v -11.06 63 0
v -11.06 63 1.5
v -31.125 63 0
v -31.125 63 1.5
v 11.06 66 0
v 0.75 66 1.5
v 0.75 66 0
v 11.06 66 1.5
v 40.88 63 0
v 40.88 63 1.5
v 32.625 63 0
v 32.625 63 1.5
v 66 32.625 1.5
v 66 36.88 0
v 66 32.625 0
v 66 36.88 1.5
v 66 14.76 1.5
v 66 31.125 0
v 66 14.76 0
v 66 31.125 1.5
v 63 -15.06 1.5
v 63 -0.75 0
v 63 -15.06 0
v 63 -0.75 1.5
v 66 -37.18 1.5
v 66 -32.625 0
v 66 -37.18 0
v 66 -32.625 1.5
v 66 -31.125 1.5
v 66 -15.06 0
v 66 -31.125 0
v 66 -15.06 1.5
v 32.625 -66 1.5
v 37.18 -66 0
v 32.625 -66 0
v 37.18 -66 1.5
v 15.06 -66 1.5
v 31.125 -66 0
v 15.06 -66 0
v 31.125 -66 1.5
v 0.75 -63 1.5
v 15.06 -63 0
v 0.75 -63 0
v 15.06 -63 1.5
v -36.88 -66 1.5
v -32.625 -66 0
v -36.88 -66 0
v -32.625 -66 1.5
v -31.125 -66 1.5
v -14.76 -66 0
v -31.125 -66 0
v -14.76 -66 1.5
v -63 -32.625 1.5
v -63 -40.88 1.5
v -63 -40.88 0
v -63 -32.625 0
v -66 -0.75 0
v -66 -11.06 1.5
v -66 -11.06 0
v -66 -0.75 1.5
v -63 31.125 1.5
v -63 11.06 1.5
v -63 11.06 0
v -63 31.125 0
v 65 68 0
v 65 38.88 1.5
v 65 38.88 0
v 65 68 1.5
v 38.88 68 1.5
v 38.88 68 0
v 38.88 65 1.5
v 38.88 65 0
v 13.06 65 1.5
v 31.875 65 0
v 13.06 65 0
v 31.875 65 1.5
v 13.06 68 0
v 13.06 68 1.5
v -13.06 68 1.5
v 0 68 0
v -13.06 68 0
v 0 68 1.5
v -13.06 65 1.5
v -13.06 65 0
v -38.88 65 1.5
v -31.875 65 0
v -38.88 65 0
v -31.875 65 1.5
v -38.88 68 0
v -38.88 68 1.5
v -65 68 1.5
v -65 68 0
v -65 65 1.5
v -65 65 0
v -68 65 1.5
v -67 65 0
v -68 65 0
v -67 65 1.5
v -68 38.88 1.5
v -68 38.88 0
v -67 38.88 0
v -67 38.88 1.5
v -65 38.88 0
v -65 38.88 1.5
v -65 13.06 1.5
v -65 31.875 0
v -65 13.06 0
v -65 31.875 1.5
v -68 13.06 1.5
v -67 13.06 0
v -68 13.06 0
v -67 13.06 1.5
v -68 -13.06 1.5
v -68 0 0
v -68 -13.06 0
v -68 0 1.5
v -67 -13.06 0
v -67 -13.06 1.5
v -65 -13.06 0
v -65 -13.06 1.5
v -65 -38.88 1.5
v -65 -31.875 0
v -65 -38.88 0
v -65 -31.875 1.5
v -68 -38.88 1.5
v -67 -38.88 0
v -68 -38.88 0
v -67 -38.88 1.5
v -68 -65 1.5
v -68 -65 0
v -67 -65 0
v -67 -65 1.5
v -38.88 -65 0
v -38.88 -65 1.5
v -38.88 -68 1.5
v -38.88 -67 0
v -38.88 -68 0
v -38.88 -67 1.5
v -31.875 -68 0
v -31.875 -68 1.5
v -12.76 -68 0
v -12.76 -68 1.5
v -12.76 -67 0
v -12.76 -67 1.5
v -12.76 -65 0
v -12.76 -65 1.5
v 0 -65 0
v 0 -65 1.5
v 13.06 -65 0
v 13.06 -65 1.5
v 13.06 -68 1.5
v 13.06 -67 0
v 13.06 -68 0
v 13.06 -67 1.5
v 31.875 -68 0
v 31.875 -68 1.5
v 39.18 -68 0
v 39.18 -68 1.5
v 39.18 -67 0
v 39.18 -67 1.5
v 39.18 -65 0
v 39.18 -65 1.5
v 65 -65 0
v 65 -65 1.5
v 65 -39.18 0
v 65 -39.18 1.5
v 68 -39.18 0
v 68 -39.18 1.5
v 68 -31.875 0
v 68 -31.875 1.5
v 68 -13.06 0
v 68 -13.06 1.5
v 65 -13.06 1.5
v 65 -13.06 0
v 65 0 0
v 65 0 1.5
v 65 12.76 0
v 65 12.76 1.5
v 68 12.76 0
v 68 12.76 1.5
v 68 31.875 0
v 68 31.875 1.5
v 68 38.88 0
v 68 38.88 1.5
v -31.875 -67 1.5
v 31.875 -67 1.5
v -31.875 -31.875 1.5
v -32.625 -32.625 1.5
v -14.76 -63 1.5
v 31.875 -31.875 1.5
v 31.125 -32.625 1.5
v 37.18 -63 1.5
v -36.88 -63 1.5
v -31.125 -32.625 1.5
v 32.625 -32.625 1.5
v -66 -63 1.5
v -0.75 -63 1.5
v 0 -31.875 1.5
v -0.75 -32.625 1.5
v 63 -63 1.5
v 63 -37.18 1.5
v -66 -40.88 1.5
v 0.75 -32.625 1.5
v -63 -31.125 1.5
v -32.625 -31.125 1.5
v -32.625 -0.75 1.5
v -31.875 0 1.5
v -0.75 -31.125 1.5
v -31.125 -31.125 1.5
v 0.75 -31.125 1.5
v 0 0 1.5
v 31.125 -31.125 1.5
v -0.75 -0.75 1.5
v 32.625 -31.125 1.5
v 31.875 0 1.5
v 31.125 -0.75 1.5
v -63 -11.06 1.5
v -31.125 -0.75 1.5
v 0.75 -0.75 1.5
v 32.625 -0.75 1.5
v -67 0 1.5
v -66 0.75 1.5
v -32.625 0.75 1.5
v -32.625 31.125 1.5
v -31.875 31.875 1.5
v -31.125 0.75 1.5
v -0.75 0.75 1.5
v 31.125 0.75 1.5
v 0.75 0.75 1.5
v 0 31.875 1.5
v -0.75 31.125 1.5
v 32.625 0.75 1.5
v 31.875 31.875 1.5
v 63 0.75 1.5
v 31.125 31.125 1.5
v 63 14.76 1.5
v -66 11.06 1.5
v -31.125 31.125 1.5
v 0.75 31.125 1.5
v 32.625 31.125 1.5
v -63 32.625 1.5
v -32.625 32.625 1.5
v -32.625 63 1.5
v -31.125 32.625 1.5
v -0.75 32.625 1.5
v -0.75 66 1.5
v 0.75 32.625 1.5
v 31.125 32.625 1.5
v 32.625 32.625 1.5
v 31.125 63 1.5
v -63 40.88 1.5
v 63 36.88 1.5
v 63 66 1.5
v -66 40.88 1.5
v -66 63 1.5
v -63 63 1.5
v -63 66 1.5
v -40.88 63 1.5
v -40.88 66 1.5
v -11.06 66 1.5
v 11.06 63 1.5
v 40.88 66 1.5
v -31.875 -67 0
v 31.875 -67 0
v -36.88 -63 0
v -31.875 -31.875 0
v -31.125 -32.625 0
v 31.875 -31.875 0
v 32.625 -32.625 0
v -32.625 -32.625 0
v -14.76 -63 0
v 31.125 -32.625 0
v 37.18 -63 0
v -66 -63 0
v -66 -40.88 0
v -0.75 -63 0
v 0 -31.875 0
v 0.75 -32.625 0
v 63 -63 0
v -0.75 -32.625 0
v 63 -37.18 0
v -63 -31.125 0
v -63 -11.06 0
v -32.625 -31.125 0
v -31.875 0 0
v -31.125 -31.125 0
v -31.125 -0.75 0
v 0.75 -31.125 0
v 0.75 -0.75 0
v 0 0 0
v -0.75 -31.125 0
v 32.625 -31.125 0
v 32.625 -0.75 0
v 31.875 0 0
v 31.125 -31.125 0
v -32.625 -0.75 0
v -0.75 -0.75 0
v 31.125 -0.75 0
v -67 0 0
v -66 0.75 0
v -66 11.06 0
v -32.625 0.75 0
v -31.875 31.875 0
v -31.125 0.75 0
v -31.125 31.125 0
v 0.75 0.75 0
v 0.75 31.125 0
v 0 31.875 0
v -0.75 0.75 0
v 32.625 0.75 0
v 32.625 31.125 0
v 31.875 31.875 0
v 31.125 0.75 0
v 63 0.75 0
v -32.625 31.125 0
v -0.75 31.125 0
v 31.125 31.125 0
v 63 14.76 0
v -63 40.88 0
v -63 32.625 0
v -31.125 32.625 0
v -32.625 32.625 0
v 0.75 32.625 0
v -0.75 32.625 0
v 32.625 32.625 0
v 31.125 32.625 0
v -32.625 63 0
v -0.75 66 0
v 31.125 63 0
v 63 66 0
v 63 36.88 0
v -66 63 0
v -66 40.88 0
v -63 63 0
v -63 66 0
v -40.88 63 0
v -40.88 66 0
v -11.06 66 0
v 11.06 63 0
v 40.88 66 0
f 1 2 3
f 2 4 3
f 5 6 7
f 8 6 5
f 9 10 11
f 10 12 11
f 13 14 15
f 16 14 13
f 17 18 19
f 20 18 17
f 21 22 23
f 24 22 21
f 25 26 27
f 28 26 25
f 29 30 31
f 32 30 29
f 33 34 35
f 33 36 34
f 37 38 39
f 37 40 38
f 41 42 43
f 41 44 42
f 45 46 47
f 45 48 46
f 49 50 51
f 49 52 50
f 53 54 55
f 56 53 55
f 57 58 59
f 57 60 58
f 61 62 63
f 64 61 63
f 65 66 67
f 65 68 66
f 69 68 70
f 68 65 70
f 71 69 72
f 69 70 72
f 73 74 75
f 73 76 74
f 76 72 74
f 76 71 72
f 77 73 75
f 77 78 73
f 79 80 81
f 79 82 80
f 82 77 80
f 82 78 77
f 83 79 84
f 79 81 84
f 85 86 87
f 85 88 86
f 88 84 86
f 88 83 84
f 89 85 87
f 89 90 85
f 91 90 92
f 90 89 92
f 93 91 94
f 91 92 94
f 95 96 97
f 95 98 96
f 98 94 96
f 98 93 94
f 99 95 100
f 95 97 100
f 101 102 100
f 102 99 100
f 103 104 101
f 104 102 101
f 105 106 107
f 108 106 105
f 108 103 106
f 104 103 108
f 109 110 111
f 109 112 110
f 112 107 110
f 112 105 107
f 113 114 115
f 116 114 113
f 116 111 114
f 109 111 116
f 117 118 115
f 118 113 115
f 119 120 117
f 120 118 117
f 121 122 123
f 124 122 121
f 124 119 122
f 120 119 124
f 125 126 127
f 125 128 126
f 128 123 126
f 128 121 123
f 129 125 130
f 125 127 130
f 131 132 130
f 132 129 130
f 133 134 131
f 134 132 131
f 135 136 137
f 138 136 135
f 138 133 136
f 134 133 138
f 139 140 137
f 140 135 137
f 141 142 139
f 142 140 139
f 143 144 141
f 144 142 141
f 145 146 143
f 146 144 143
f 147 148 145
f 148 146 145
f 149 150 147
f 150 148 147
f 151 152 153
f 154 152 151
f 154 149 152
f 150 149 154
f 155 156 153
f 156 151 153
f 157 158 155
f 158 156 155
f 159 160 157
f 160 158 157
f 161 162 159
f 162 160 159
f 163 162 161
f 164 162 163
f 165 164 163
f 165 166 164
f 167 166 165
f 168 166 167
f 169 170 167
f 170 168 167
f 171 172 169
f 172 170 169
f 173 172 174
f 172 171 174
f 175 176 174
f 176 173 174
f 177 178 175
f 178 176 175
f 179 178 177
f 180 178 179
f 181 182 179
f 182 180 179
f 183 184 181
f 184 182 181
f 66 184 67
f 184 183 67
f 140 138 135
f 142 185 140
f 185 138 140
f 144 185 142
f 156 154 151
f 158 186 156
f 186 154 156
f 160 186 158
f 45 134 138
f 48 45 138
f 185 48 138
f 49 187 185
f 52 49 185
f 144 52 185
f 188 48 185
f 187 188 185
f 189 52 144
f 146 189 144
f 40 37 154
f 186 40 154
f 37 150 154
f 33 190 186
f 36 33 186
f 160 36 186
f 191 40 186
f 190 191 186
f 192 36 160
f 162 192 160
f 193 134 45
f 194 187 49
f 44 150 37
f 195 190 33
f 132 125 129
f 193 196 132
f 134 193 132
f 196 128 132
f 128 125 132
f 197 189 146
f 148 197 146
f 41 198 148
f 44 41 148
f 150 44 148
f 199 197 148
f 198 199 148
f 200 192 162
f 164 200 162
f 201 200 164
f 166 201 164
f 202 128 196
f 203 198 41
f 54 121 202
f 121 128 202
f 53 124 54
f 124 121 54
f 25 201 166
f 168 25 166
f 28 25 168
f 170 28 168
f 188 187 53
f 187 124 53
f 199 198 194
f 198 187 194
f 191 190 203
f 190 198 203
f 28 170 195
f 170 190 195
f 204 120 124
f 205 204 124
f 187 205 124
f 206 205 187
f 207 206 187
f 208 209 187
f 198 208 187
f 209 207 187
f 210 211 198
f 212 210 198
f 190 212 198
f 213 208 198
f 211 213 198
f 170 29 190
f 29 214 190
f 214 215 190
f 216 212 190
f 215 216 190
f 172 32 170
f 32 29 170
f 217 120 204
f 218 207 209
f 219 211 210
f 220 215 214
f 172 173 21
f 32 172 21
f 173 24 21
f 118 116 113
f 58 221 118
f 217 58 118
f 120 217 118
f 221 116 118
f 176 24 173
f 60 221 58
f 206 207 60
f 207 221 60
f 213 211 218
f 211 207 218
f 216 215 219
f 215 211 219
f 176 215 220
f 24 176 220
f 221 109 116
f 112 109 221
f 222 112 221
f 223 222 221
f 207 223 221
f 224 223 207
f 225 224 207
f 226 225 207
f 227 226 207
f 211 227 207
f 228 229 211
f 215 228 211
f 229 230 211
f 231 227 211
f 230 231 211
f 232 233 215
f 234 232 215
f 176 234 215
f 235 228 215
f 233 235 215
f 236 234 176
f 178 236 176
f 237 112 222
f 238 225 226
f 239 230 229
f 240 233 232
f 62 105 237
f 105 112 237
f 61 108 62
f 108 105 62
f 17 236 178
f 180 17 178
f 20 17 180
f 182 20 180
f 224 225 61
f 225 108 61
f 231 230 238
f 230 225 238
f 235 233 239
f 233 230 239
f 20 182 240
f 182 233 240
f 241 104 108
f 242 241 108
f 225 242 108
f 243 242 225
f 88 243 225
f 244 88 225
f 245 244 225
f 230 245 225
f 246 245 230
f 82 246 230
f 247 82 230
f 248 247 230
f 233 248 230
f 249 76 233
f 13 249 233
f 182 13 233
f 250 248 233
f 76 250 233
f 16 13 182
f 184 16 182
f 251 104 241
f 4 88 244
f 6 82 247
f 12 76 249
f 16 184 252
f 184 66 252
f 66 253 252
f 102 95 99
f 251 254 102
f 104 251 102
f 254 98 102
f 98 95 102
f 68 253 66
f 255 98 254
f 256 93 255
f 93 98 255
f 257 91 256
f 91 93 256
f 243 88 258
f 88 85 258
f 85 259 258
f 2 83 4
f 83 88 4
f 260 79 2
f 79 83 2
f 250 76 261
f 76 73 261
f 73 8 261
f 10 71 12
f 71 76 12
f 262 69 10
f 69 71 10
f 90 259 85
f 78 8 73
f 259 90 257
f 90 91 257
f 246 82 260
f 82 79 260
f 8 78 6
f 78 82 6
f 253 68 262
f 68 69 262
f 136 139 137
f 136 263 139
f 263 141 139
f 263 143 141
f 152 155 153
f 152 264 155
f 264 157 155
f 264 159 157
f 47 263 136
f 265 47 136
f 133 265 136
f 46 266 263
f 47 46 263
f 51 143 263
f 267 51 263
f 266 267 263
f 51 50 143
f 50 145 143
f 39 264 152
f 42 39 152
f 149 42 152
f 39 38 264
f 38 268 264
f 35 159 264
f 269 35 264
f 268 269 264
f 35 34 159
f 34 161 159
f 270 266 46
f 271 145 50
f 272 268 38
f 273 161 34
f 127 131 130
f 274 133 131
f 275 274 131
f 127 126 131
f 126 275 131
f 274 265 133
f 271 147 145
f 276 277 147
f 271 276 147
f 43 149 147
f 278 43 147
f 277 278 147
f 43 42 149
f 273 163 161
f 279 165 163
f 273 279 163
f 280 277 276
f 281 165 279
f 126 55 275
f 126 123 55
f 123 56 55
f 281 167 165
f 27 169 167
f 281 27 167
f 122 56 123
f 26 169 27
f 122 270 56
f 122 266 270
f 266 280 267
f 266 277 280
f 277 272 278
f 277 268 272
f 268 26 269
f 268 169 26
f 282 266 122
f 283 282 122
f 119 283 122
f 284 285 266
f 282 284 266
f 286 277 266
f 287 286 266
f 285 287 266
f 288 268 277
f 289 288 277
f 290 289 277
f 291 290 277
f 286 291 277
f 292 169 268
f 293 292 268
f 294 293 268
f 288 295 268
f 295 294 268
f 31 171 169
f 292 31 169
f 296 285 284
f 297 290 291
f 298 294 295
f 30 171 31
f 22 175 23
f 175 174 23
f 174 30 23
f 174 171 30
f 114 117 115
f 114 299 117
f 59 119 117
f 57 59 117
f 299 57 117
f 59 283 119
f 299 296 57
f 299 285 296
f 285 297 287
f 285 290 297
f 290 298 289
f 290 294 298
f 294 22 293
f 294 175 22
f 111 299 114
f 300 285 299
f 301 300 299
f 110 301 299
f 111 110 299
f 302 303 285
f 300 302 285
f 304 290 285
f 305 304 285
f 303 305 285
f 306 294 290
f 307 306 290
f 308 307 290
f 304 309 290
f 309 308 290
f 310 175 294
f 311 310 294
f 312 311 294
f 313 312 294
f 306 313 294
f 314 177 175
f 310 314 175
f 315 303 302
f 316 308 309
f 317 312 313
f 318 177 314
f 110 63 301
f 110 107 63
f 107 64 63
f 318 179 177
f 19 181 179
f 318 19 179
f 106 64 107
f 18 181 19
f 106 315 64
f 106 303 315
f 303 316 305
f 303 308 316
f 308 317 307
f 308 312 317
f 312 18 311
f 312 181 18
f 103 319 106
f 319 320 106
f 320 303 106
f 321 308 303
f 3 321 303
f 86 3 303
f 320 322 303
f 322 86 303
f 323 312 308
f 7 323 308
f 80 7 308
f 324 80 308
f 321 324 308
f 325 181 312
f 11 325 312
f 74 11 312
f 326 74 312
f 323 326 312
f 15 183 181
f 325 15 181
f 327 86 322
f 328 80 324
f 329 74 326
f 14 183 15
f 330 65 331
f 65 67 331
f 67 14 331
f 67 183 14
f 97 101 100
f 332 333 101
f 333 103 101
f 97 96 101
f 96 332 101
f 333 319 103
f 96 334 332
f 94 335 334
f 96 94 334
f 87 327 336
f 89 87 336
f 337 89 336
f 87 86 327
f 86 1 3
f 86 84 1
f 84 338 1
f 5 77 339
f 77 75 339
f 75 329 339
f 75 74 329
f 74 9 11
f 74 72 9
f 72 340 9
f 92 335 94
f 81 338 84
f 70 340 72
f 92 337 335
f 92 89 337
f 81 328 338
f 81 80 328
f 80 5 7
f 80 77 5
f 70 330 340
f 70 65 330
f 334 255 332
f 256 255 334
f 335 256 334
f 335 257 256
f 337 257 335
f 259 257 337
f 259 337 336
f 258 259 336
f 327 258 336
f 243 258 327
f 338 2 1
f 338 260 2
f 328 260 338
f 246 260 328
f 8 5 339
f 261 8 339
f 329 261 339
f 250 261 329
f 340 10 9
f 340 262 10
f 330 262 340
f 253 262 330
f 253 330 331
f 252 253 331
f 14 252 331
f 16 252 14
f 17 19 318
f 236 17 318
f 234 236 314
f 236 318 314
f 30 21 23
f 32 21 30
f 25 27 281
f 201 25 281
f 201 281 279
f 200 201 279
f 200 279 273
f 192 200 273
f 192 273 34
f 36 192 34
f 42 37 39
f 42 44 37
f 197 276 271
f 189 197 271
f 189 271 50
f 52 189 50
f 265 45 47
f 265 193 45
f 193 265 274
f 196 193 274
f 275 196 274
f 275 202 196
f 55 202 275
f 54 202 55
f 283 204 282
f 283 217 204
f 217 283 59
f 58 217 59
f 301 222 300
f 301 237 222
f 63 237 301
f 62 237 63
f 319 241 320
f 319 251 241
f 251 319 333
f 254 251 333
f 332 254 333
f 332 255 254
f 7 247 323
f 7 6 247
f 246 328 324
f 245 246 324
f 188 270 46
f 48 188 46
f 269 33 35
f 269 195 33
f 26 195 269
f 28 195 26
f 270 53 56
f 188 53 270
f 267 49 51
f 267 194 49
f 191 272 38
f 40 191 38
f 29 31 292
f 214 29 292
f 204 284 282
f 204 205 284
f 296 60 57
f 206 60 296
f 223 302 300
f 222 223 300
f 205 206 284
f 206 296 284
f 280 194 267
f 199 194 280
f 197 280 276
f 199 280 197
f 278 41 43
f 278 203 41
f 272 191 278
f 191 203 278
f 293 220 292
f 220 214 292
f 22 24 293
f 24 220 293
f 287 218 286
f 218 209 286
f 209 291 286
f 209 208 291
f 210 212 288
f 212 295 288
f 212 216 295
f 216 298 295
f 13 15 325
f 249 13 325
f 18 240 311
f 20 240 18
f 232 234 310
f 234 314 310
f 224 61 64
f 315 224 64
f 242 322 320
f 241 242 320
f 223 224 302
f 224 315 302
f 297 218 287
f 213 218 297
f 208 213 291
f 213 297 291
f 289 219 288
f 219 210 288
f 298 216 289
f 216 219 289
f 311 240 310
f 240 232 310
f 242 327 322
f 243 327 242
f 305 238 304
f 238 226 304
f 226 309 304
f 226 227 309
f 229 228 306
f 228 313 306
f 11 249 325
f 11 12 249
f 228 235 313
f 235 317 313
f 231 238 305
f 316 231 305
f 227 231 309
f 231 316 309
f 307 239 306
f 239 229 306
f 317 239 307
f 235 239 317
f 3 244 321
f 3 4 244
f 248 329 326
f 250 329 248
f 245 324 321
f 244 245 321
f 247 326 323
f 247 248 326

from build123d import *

# Parameters (mm, degrees)
BOSS_EXTRUDE1_DEPTH     = 1.5
CUT_EXTRUDE1_DEPTH      = 97.178219988
CUT_EXTRUDE1_DEPTH_BACK = 97.178219988
SKETCH3_W               = 30.375
SKETCH3_H               = 30.375
BOSS_EXTRUDE2_DEPTH     = 1.5


with BuildPart() as part:
    # Sketch1 → Boss-Extrude1 (new body)
    with BuildSketch(Plane.XY):
        Polygon((65, 38.88), (68, 38.88), (68, 12.76), (65, 12.76), (65, -13.06), (68, -13.06), (68, -39.18), (65, -39.18), (65, -65), (39.18, -65), (39.18, -68), (13.06, -68), (13.06, -65), (-12.76, -65), (-12.76, -68), (-38.88, -68), (-38.88, -65), (-64.7, -65), (-68, -65), (-68, -38.88), (-65, -38.88), (-65, -13.06), (-68, -13.06), (-68, 13.06), (-65, 13.06), (-65, 38.88), (-68, 38.88), (-68, 65), (-65, 65), (-65, 68), (-38.88, 68), (-38.88, 65), (-13.06, 65), (-13.06, 68), (13.06, 68), (13.06, 65), (38.88, 65), (38.88, 68), (65, 68), (65, 64.7), align=None)
    extrude(amount=BOSS_EXTRUDE1_DEPTH)

    # Sketch2 → Cut-Extrude1 (cut, two sides: drawn at the far end of the back side and taken through both)
    with BuildSketch(Plane.XY.offset(1.5).offset(-CUT_EXTRUDE1_DEPTH_BACK)):
        Polygon((63, -63), (37.18, -63), (37.18, -66), (15.06, -66), (15.06, -63), (-14.76, -63), (-14.76, -66), (-36.88, -66), (-36.88, -63), (-63, -63), (-66, -63), (-66, -40.88), (-63, -40.88), (-63, -11.06), (-66, -11.06), (-66, 11.06), (-63, 11.06), (-63, 40.88), (-66, 40.88), (-66, 63), (-63, 63), (-63, 66), (-40.88, 66), (-40.88, 63), (-11.06, 63), (-11.06, 66), (11.06, 66), (11.06, 63), (40.88, 63), (40.88, 66), (63, 66), (63, 63), (63, 36.88), (66, 36.88), (66, 14.76), (63, 14.76), (63, -15.06), (66, -15.06), (66, -37.18), (63, -37.18), align=None)
    extrude(amount=CUT_EXTRUDE1_DEPTH + CUT_EXTRUDE1_DEPTH_BACK, mode=Mode.SUBTRACT)

    # Sketch3 → Boss-Extrude2 (add, through all)
    with BuildSketch(Plane.XY.offset(1.5)):
        Polygon((0.75, -32.625), (31.125, -32.625), (31.125, -66), (32.625, -66), (32.625, -32.625), (66, -32.625), (66, -31.125), (32.625, -31.125), (32.625, -0.75), (63, -0.75), (63, 0.75), (32.625, 0.75), (32.625, 31.125), (66, 31.125), (66, 32.625), (32.625, 32.625), (32.625, 63), (31.125, 63), (31.125, 32.625), (0.75, 32.625), (0.75, 66), (-0.75, 66), (-0.75, 32.625), (-31.125, 32.625), (-31.125, 63), (-32.625, 63), (-32.625, 32.625), (-63, 32.625), (-63, 31.125), (-32.625, 31.125), (-32.625, 0.75), (-66, 0.75), (-66, -0.75), (-32.625, -0.75), (-32.625, -31.125), (-63, -31.125), (-63, -32.625), (-32.625, -32.625), (-32.625, -66), (-31.125, -66), (-31.125, -32.625), (-0.75, -32.625), (-0.75, -63), (0.75, -63), align=None)
        with Locations((-15.9375, -15.9375)):
            Rectangle(SKETCH3_W, SKETCH3_H, mode=Mode.SUBTRACT)
        with Locations((15.9375, -15.9375)):
            Rectangle(SKETCH3_W, SKETCH3_H, mode=Mode.SUBTRACT)
        with Locations((-15.9375, 15.9375)):
            Rectangle(SKETCH3_W, SKETCH3_H, mode=Mode.SUBTRACT)
        with Locations((15.9375, 15.9375)):
            Rectangle(SKETCH3_W, SKETCH3_H, mode=Mode.SUBTRACT)
    extrude(amount=-BOSS_EXTRUDE2_DEPTH)


solid = part.part
